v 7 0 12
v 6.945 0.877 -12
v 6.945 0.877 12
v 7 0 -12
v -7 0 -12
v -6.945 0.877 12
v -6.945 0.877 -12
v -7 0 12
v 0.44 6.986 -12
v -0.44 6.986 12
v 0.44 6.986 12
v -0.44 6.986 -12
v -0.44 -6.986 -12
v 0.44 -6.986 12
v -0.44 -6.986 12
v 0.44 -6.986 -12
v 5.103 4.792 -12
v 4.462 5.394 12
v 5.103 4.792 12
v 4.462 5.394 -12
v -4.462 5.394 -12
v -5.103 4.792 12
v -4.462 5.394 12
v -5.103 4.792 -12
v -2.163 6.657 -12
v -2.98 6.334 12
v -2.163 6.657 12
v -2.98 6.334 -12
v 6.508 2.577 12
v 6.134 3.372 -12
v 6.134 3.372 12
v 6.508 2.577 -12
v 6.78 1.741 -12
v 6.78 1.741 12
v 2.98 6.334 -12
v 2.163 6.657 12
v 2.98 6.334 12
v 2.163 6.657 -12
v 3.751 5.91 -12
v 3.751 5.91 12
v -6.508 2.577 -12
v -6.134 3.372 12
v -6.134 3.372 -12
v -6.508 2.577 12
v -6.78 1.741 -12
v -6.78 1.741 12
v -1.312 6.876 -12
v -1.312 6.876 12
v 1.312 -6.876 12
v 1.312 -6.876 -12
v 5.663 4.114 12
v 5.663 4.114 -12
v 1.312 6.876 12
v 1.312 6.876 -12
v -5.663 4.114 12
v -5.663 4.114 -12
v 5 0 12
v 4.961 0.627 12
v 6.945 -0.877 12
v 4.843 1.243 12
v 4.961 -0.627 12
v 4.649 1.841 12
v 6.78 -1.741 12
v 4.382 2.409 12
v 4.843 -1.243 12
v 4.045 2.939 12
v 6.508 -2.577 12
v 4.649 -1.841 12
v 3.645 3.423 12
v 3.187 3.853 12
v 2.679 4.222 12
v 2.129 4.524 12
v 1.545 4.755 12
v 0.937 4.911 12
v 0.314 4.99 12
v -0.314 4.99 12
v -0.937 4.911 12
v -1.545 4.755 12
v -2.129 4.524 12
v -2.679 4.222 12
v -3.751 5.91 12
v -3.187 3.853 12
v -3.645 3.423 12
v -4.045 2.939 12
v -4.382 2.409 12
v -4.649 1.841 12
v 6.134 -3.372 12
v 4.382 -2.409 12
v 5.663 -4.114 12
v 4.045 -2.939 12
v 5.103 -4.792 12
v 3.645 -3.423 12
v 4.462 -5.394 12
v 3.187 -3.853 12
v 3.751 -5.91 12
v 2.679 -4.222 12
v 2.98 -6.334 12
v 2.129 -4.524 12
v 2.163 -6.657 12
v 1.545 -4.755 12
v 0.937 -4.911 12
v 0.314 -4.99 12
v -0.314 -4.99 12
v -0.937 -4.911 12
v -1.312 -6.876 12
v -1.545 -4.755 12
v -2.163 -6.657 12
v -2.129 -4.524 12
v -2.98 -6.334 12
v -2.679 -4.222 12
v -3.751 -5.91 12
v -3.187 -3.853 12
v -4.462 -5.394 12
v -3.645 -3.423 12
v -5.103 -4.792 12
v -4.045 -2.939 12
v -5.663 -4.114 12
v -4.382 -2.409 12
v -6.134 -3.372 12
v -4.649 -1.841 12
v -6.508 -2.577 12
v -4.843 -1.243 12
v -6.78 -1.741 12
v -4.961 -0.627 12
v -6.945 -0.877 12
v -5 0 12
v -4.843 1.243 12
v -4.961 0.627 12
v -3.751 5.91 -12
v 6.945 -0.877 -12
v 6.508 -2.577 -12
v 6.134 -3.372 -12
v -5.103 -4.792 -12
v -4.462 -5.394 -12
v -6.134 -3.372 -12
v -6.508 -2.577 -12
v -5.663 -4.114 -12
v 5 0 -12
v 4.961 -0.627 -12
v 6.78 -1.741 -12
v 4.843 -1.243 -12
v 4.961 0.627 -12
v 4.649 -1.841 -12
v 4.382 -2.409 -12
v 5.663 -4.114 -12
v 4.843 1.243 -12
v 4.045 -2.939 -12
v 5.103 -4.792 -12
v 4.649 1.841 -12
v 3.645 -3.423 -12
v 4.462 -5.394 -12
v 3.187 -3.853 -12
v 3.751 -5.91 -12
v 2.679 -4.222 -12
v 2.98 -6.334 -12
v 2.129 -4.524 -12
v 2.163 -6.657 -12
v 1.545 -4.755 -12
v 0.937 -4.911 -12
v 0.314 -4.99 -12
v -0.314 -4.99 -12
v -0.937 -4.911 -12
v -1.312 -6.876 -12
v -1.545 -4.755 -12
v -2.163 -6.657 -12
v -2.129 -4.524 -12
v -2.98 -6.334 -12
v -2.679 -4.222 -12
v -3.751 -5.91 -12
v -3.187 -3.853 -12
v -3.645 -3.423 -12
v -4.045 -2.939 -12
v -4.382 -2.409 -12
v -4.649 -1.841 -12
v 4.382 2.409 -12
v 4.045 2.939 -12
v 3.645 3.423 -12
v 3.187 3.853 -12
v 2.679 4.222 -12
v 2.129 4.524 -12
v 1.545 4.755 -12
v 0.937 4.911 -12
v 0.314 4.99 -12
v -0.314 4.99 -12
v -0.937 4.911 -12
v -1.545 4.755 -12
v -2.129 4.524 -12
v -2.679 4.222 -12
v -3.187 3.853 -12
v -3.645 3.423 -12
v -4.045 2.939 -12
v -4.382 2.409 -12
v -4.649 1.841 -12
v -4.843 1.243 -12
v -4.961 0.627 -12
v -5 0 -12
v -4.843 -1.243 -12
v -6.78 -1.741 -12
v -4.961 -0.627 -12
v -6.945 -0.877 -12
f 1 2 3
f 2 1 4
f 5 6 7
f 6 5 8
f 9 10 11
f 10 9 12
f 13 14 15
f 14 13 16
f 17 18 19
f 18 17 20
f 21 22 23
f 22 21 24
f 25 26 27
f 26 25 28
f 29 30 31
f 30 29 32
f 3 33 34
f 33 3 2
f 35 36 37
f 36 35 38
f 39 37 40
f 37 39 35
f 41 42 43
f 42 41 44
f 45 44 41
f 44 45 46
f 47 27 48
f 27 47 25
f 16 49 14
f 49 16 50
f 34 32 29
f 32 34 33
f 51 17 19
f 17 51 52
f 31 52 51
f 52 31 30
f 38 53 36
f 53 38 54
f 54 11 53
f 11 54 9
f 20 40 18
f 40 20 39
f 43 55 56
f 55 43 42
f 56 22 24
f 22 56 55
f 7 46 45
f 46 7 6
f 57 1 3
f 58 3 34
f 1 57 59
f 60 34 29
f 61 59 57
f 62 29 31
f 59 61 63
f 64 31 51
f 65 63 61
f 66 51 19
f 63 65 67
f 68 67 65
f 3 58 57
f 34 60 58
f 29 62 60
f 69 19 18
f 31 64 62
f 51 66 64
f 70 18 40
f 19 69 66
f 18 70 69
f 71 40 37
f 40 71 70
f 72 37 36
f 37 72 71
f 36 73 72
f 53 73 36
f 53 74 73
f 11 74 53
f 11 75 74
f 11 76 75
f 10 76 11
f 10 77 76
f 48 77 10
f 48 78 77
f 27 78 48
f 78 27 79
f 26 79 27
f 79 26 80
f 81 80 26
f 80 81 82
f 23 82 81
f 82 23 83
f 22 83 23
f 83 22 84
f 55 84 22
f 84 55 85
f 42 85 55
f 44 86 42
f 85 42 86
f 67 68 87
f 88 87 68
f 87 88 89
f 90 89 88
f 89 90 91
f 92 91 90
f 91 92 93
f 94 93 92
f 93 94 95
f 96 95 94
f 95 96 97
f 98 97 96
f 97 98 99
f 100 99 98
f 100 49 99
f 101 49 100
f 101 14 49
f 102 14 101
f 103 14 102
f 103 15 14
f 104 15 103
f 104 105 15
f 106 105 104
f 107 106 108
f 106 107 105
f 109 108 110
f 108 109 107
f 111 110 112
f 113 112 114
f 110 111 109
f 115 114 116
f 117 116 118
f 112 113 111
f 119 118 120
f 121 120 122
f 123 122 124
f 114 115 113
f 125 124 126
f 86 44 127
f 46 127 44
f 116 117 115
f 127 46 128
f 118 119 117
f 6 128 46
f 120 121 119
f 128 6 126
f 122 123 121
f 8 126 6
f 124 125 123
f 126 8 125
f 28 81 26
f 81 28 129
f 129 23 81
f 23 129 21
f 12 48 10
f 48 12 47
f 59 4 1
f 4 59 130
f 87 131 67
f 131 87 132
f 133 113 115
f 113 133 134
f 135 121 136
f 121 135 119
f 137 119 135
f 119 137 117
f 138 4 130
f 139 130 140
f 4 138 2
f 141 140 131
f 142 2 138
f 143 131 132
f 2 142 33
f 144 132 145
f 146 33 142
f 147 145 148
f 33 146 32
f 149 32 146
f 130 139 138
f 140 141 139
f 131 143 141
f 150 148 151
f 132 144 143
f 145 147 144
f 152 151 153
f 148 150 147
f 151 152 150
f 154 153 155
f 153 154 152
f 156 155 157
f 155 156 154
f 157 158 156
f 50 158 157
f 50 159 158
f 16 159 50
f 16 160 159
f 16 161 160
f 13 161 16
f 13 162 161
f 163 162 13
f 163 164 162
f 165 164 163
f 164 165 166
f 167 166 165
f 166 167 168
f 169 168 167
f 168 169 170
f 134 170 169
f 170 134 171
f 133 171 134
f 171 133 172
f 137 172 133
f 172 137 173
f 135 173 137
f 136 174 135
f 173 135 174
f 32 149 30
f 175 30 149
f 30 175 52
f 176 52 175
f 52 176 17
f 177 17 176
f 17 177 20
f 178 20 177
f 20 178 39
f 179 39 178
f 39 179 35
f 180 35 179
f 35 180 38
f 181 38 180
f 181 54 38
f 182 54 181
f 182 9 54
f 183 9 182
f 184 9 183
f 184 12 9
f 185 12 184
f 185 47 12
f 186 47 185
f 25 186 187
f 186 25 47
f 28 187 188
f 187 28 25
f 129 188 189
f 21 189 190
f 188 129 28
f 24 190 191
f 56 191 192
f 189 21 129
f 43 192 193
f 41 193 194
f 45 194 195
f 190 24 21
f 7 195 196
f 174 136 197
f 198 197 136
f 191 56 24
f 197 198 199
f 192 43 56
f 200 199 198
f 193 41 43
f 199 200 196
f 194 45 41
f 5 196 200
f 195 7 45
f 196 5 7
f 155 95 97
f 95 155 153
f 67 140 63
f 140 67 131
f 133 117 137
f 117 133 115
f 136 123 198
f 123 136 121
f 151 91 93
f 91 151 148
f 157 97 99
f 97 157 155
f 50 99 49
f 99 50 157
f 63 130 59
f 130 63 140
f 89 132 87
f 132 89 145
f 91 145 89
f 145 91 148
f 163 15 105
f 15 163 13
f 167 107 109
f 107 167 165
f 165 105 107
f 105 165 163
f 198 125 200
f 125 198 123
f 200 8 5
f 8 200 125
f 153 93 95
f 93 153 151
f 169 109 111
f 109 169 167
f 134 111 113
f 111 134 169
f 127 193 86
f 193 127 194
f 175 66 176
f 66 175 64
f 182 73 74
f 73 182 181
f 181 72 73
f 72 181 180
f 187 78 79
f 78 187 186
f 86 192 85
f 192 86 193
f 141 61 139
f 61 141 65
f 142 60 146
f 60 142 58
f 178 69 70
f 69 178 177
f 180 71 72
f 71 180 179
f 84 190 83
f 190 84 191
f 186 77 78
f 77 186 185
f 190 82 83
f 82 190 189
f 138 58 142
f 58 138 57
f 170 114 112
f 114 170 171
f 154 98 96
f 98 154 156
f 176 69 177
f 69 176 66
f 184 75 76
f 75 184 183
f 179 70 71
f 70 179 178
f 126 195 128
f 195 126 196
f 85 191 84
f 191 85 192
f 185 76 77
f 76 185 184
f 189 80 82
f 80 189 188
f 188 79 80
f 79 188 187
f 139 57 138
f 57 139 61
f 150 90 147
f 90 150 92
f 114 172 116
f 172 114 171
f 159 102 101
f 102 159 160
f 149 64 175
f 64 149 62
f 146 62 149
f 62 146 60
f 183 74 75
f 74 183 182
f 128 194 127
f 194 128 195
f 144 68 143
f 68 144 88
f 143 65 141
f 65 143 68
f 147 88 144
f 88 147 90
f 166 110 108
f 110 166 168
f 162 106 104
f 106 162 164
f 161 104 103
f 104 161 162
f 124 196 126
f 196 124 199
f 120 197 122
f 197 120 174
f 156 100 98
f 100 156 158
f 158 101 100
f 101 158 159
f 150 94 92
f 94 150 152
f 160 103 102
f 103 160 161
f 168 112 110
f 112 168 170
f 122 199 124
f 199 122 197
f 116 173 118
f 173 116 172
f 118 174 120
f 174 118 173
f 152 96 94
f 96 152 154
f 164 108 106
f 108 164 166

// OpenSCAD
$fn = 50;


difference() {
	union() {
		translate(v = [0, 0, -12.0000000000]) {
			cylinder(h = 24, r = 7.0000000000);
		}
	}
	union() {
		translate(v = [0, 0, -100.0000000000]) {
			cylinder(h = 200, r = 5);
		}
	}
}
